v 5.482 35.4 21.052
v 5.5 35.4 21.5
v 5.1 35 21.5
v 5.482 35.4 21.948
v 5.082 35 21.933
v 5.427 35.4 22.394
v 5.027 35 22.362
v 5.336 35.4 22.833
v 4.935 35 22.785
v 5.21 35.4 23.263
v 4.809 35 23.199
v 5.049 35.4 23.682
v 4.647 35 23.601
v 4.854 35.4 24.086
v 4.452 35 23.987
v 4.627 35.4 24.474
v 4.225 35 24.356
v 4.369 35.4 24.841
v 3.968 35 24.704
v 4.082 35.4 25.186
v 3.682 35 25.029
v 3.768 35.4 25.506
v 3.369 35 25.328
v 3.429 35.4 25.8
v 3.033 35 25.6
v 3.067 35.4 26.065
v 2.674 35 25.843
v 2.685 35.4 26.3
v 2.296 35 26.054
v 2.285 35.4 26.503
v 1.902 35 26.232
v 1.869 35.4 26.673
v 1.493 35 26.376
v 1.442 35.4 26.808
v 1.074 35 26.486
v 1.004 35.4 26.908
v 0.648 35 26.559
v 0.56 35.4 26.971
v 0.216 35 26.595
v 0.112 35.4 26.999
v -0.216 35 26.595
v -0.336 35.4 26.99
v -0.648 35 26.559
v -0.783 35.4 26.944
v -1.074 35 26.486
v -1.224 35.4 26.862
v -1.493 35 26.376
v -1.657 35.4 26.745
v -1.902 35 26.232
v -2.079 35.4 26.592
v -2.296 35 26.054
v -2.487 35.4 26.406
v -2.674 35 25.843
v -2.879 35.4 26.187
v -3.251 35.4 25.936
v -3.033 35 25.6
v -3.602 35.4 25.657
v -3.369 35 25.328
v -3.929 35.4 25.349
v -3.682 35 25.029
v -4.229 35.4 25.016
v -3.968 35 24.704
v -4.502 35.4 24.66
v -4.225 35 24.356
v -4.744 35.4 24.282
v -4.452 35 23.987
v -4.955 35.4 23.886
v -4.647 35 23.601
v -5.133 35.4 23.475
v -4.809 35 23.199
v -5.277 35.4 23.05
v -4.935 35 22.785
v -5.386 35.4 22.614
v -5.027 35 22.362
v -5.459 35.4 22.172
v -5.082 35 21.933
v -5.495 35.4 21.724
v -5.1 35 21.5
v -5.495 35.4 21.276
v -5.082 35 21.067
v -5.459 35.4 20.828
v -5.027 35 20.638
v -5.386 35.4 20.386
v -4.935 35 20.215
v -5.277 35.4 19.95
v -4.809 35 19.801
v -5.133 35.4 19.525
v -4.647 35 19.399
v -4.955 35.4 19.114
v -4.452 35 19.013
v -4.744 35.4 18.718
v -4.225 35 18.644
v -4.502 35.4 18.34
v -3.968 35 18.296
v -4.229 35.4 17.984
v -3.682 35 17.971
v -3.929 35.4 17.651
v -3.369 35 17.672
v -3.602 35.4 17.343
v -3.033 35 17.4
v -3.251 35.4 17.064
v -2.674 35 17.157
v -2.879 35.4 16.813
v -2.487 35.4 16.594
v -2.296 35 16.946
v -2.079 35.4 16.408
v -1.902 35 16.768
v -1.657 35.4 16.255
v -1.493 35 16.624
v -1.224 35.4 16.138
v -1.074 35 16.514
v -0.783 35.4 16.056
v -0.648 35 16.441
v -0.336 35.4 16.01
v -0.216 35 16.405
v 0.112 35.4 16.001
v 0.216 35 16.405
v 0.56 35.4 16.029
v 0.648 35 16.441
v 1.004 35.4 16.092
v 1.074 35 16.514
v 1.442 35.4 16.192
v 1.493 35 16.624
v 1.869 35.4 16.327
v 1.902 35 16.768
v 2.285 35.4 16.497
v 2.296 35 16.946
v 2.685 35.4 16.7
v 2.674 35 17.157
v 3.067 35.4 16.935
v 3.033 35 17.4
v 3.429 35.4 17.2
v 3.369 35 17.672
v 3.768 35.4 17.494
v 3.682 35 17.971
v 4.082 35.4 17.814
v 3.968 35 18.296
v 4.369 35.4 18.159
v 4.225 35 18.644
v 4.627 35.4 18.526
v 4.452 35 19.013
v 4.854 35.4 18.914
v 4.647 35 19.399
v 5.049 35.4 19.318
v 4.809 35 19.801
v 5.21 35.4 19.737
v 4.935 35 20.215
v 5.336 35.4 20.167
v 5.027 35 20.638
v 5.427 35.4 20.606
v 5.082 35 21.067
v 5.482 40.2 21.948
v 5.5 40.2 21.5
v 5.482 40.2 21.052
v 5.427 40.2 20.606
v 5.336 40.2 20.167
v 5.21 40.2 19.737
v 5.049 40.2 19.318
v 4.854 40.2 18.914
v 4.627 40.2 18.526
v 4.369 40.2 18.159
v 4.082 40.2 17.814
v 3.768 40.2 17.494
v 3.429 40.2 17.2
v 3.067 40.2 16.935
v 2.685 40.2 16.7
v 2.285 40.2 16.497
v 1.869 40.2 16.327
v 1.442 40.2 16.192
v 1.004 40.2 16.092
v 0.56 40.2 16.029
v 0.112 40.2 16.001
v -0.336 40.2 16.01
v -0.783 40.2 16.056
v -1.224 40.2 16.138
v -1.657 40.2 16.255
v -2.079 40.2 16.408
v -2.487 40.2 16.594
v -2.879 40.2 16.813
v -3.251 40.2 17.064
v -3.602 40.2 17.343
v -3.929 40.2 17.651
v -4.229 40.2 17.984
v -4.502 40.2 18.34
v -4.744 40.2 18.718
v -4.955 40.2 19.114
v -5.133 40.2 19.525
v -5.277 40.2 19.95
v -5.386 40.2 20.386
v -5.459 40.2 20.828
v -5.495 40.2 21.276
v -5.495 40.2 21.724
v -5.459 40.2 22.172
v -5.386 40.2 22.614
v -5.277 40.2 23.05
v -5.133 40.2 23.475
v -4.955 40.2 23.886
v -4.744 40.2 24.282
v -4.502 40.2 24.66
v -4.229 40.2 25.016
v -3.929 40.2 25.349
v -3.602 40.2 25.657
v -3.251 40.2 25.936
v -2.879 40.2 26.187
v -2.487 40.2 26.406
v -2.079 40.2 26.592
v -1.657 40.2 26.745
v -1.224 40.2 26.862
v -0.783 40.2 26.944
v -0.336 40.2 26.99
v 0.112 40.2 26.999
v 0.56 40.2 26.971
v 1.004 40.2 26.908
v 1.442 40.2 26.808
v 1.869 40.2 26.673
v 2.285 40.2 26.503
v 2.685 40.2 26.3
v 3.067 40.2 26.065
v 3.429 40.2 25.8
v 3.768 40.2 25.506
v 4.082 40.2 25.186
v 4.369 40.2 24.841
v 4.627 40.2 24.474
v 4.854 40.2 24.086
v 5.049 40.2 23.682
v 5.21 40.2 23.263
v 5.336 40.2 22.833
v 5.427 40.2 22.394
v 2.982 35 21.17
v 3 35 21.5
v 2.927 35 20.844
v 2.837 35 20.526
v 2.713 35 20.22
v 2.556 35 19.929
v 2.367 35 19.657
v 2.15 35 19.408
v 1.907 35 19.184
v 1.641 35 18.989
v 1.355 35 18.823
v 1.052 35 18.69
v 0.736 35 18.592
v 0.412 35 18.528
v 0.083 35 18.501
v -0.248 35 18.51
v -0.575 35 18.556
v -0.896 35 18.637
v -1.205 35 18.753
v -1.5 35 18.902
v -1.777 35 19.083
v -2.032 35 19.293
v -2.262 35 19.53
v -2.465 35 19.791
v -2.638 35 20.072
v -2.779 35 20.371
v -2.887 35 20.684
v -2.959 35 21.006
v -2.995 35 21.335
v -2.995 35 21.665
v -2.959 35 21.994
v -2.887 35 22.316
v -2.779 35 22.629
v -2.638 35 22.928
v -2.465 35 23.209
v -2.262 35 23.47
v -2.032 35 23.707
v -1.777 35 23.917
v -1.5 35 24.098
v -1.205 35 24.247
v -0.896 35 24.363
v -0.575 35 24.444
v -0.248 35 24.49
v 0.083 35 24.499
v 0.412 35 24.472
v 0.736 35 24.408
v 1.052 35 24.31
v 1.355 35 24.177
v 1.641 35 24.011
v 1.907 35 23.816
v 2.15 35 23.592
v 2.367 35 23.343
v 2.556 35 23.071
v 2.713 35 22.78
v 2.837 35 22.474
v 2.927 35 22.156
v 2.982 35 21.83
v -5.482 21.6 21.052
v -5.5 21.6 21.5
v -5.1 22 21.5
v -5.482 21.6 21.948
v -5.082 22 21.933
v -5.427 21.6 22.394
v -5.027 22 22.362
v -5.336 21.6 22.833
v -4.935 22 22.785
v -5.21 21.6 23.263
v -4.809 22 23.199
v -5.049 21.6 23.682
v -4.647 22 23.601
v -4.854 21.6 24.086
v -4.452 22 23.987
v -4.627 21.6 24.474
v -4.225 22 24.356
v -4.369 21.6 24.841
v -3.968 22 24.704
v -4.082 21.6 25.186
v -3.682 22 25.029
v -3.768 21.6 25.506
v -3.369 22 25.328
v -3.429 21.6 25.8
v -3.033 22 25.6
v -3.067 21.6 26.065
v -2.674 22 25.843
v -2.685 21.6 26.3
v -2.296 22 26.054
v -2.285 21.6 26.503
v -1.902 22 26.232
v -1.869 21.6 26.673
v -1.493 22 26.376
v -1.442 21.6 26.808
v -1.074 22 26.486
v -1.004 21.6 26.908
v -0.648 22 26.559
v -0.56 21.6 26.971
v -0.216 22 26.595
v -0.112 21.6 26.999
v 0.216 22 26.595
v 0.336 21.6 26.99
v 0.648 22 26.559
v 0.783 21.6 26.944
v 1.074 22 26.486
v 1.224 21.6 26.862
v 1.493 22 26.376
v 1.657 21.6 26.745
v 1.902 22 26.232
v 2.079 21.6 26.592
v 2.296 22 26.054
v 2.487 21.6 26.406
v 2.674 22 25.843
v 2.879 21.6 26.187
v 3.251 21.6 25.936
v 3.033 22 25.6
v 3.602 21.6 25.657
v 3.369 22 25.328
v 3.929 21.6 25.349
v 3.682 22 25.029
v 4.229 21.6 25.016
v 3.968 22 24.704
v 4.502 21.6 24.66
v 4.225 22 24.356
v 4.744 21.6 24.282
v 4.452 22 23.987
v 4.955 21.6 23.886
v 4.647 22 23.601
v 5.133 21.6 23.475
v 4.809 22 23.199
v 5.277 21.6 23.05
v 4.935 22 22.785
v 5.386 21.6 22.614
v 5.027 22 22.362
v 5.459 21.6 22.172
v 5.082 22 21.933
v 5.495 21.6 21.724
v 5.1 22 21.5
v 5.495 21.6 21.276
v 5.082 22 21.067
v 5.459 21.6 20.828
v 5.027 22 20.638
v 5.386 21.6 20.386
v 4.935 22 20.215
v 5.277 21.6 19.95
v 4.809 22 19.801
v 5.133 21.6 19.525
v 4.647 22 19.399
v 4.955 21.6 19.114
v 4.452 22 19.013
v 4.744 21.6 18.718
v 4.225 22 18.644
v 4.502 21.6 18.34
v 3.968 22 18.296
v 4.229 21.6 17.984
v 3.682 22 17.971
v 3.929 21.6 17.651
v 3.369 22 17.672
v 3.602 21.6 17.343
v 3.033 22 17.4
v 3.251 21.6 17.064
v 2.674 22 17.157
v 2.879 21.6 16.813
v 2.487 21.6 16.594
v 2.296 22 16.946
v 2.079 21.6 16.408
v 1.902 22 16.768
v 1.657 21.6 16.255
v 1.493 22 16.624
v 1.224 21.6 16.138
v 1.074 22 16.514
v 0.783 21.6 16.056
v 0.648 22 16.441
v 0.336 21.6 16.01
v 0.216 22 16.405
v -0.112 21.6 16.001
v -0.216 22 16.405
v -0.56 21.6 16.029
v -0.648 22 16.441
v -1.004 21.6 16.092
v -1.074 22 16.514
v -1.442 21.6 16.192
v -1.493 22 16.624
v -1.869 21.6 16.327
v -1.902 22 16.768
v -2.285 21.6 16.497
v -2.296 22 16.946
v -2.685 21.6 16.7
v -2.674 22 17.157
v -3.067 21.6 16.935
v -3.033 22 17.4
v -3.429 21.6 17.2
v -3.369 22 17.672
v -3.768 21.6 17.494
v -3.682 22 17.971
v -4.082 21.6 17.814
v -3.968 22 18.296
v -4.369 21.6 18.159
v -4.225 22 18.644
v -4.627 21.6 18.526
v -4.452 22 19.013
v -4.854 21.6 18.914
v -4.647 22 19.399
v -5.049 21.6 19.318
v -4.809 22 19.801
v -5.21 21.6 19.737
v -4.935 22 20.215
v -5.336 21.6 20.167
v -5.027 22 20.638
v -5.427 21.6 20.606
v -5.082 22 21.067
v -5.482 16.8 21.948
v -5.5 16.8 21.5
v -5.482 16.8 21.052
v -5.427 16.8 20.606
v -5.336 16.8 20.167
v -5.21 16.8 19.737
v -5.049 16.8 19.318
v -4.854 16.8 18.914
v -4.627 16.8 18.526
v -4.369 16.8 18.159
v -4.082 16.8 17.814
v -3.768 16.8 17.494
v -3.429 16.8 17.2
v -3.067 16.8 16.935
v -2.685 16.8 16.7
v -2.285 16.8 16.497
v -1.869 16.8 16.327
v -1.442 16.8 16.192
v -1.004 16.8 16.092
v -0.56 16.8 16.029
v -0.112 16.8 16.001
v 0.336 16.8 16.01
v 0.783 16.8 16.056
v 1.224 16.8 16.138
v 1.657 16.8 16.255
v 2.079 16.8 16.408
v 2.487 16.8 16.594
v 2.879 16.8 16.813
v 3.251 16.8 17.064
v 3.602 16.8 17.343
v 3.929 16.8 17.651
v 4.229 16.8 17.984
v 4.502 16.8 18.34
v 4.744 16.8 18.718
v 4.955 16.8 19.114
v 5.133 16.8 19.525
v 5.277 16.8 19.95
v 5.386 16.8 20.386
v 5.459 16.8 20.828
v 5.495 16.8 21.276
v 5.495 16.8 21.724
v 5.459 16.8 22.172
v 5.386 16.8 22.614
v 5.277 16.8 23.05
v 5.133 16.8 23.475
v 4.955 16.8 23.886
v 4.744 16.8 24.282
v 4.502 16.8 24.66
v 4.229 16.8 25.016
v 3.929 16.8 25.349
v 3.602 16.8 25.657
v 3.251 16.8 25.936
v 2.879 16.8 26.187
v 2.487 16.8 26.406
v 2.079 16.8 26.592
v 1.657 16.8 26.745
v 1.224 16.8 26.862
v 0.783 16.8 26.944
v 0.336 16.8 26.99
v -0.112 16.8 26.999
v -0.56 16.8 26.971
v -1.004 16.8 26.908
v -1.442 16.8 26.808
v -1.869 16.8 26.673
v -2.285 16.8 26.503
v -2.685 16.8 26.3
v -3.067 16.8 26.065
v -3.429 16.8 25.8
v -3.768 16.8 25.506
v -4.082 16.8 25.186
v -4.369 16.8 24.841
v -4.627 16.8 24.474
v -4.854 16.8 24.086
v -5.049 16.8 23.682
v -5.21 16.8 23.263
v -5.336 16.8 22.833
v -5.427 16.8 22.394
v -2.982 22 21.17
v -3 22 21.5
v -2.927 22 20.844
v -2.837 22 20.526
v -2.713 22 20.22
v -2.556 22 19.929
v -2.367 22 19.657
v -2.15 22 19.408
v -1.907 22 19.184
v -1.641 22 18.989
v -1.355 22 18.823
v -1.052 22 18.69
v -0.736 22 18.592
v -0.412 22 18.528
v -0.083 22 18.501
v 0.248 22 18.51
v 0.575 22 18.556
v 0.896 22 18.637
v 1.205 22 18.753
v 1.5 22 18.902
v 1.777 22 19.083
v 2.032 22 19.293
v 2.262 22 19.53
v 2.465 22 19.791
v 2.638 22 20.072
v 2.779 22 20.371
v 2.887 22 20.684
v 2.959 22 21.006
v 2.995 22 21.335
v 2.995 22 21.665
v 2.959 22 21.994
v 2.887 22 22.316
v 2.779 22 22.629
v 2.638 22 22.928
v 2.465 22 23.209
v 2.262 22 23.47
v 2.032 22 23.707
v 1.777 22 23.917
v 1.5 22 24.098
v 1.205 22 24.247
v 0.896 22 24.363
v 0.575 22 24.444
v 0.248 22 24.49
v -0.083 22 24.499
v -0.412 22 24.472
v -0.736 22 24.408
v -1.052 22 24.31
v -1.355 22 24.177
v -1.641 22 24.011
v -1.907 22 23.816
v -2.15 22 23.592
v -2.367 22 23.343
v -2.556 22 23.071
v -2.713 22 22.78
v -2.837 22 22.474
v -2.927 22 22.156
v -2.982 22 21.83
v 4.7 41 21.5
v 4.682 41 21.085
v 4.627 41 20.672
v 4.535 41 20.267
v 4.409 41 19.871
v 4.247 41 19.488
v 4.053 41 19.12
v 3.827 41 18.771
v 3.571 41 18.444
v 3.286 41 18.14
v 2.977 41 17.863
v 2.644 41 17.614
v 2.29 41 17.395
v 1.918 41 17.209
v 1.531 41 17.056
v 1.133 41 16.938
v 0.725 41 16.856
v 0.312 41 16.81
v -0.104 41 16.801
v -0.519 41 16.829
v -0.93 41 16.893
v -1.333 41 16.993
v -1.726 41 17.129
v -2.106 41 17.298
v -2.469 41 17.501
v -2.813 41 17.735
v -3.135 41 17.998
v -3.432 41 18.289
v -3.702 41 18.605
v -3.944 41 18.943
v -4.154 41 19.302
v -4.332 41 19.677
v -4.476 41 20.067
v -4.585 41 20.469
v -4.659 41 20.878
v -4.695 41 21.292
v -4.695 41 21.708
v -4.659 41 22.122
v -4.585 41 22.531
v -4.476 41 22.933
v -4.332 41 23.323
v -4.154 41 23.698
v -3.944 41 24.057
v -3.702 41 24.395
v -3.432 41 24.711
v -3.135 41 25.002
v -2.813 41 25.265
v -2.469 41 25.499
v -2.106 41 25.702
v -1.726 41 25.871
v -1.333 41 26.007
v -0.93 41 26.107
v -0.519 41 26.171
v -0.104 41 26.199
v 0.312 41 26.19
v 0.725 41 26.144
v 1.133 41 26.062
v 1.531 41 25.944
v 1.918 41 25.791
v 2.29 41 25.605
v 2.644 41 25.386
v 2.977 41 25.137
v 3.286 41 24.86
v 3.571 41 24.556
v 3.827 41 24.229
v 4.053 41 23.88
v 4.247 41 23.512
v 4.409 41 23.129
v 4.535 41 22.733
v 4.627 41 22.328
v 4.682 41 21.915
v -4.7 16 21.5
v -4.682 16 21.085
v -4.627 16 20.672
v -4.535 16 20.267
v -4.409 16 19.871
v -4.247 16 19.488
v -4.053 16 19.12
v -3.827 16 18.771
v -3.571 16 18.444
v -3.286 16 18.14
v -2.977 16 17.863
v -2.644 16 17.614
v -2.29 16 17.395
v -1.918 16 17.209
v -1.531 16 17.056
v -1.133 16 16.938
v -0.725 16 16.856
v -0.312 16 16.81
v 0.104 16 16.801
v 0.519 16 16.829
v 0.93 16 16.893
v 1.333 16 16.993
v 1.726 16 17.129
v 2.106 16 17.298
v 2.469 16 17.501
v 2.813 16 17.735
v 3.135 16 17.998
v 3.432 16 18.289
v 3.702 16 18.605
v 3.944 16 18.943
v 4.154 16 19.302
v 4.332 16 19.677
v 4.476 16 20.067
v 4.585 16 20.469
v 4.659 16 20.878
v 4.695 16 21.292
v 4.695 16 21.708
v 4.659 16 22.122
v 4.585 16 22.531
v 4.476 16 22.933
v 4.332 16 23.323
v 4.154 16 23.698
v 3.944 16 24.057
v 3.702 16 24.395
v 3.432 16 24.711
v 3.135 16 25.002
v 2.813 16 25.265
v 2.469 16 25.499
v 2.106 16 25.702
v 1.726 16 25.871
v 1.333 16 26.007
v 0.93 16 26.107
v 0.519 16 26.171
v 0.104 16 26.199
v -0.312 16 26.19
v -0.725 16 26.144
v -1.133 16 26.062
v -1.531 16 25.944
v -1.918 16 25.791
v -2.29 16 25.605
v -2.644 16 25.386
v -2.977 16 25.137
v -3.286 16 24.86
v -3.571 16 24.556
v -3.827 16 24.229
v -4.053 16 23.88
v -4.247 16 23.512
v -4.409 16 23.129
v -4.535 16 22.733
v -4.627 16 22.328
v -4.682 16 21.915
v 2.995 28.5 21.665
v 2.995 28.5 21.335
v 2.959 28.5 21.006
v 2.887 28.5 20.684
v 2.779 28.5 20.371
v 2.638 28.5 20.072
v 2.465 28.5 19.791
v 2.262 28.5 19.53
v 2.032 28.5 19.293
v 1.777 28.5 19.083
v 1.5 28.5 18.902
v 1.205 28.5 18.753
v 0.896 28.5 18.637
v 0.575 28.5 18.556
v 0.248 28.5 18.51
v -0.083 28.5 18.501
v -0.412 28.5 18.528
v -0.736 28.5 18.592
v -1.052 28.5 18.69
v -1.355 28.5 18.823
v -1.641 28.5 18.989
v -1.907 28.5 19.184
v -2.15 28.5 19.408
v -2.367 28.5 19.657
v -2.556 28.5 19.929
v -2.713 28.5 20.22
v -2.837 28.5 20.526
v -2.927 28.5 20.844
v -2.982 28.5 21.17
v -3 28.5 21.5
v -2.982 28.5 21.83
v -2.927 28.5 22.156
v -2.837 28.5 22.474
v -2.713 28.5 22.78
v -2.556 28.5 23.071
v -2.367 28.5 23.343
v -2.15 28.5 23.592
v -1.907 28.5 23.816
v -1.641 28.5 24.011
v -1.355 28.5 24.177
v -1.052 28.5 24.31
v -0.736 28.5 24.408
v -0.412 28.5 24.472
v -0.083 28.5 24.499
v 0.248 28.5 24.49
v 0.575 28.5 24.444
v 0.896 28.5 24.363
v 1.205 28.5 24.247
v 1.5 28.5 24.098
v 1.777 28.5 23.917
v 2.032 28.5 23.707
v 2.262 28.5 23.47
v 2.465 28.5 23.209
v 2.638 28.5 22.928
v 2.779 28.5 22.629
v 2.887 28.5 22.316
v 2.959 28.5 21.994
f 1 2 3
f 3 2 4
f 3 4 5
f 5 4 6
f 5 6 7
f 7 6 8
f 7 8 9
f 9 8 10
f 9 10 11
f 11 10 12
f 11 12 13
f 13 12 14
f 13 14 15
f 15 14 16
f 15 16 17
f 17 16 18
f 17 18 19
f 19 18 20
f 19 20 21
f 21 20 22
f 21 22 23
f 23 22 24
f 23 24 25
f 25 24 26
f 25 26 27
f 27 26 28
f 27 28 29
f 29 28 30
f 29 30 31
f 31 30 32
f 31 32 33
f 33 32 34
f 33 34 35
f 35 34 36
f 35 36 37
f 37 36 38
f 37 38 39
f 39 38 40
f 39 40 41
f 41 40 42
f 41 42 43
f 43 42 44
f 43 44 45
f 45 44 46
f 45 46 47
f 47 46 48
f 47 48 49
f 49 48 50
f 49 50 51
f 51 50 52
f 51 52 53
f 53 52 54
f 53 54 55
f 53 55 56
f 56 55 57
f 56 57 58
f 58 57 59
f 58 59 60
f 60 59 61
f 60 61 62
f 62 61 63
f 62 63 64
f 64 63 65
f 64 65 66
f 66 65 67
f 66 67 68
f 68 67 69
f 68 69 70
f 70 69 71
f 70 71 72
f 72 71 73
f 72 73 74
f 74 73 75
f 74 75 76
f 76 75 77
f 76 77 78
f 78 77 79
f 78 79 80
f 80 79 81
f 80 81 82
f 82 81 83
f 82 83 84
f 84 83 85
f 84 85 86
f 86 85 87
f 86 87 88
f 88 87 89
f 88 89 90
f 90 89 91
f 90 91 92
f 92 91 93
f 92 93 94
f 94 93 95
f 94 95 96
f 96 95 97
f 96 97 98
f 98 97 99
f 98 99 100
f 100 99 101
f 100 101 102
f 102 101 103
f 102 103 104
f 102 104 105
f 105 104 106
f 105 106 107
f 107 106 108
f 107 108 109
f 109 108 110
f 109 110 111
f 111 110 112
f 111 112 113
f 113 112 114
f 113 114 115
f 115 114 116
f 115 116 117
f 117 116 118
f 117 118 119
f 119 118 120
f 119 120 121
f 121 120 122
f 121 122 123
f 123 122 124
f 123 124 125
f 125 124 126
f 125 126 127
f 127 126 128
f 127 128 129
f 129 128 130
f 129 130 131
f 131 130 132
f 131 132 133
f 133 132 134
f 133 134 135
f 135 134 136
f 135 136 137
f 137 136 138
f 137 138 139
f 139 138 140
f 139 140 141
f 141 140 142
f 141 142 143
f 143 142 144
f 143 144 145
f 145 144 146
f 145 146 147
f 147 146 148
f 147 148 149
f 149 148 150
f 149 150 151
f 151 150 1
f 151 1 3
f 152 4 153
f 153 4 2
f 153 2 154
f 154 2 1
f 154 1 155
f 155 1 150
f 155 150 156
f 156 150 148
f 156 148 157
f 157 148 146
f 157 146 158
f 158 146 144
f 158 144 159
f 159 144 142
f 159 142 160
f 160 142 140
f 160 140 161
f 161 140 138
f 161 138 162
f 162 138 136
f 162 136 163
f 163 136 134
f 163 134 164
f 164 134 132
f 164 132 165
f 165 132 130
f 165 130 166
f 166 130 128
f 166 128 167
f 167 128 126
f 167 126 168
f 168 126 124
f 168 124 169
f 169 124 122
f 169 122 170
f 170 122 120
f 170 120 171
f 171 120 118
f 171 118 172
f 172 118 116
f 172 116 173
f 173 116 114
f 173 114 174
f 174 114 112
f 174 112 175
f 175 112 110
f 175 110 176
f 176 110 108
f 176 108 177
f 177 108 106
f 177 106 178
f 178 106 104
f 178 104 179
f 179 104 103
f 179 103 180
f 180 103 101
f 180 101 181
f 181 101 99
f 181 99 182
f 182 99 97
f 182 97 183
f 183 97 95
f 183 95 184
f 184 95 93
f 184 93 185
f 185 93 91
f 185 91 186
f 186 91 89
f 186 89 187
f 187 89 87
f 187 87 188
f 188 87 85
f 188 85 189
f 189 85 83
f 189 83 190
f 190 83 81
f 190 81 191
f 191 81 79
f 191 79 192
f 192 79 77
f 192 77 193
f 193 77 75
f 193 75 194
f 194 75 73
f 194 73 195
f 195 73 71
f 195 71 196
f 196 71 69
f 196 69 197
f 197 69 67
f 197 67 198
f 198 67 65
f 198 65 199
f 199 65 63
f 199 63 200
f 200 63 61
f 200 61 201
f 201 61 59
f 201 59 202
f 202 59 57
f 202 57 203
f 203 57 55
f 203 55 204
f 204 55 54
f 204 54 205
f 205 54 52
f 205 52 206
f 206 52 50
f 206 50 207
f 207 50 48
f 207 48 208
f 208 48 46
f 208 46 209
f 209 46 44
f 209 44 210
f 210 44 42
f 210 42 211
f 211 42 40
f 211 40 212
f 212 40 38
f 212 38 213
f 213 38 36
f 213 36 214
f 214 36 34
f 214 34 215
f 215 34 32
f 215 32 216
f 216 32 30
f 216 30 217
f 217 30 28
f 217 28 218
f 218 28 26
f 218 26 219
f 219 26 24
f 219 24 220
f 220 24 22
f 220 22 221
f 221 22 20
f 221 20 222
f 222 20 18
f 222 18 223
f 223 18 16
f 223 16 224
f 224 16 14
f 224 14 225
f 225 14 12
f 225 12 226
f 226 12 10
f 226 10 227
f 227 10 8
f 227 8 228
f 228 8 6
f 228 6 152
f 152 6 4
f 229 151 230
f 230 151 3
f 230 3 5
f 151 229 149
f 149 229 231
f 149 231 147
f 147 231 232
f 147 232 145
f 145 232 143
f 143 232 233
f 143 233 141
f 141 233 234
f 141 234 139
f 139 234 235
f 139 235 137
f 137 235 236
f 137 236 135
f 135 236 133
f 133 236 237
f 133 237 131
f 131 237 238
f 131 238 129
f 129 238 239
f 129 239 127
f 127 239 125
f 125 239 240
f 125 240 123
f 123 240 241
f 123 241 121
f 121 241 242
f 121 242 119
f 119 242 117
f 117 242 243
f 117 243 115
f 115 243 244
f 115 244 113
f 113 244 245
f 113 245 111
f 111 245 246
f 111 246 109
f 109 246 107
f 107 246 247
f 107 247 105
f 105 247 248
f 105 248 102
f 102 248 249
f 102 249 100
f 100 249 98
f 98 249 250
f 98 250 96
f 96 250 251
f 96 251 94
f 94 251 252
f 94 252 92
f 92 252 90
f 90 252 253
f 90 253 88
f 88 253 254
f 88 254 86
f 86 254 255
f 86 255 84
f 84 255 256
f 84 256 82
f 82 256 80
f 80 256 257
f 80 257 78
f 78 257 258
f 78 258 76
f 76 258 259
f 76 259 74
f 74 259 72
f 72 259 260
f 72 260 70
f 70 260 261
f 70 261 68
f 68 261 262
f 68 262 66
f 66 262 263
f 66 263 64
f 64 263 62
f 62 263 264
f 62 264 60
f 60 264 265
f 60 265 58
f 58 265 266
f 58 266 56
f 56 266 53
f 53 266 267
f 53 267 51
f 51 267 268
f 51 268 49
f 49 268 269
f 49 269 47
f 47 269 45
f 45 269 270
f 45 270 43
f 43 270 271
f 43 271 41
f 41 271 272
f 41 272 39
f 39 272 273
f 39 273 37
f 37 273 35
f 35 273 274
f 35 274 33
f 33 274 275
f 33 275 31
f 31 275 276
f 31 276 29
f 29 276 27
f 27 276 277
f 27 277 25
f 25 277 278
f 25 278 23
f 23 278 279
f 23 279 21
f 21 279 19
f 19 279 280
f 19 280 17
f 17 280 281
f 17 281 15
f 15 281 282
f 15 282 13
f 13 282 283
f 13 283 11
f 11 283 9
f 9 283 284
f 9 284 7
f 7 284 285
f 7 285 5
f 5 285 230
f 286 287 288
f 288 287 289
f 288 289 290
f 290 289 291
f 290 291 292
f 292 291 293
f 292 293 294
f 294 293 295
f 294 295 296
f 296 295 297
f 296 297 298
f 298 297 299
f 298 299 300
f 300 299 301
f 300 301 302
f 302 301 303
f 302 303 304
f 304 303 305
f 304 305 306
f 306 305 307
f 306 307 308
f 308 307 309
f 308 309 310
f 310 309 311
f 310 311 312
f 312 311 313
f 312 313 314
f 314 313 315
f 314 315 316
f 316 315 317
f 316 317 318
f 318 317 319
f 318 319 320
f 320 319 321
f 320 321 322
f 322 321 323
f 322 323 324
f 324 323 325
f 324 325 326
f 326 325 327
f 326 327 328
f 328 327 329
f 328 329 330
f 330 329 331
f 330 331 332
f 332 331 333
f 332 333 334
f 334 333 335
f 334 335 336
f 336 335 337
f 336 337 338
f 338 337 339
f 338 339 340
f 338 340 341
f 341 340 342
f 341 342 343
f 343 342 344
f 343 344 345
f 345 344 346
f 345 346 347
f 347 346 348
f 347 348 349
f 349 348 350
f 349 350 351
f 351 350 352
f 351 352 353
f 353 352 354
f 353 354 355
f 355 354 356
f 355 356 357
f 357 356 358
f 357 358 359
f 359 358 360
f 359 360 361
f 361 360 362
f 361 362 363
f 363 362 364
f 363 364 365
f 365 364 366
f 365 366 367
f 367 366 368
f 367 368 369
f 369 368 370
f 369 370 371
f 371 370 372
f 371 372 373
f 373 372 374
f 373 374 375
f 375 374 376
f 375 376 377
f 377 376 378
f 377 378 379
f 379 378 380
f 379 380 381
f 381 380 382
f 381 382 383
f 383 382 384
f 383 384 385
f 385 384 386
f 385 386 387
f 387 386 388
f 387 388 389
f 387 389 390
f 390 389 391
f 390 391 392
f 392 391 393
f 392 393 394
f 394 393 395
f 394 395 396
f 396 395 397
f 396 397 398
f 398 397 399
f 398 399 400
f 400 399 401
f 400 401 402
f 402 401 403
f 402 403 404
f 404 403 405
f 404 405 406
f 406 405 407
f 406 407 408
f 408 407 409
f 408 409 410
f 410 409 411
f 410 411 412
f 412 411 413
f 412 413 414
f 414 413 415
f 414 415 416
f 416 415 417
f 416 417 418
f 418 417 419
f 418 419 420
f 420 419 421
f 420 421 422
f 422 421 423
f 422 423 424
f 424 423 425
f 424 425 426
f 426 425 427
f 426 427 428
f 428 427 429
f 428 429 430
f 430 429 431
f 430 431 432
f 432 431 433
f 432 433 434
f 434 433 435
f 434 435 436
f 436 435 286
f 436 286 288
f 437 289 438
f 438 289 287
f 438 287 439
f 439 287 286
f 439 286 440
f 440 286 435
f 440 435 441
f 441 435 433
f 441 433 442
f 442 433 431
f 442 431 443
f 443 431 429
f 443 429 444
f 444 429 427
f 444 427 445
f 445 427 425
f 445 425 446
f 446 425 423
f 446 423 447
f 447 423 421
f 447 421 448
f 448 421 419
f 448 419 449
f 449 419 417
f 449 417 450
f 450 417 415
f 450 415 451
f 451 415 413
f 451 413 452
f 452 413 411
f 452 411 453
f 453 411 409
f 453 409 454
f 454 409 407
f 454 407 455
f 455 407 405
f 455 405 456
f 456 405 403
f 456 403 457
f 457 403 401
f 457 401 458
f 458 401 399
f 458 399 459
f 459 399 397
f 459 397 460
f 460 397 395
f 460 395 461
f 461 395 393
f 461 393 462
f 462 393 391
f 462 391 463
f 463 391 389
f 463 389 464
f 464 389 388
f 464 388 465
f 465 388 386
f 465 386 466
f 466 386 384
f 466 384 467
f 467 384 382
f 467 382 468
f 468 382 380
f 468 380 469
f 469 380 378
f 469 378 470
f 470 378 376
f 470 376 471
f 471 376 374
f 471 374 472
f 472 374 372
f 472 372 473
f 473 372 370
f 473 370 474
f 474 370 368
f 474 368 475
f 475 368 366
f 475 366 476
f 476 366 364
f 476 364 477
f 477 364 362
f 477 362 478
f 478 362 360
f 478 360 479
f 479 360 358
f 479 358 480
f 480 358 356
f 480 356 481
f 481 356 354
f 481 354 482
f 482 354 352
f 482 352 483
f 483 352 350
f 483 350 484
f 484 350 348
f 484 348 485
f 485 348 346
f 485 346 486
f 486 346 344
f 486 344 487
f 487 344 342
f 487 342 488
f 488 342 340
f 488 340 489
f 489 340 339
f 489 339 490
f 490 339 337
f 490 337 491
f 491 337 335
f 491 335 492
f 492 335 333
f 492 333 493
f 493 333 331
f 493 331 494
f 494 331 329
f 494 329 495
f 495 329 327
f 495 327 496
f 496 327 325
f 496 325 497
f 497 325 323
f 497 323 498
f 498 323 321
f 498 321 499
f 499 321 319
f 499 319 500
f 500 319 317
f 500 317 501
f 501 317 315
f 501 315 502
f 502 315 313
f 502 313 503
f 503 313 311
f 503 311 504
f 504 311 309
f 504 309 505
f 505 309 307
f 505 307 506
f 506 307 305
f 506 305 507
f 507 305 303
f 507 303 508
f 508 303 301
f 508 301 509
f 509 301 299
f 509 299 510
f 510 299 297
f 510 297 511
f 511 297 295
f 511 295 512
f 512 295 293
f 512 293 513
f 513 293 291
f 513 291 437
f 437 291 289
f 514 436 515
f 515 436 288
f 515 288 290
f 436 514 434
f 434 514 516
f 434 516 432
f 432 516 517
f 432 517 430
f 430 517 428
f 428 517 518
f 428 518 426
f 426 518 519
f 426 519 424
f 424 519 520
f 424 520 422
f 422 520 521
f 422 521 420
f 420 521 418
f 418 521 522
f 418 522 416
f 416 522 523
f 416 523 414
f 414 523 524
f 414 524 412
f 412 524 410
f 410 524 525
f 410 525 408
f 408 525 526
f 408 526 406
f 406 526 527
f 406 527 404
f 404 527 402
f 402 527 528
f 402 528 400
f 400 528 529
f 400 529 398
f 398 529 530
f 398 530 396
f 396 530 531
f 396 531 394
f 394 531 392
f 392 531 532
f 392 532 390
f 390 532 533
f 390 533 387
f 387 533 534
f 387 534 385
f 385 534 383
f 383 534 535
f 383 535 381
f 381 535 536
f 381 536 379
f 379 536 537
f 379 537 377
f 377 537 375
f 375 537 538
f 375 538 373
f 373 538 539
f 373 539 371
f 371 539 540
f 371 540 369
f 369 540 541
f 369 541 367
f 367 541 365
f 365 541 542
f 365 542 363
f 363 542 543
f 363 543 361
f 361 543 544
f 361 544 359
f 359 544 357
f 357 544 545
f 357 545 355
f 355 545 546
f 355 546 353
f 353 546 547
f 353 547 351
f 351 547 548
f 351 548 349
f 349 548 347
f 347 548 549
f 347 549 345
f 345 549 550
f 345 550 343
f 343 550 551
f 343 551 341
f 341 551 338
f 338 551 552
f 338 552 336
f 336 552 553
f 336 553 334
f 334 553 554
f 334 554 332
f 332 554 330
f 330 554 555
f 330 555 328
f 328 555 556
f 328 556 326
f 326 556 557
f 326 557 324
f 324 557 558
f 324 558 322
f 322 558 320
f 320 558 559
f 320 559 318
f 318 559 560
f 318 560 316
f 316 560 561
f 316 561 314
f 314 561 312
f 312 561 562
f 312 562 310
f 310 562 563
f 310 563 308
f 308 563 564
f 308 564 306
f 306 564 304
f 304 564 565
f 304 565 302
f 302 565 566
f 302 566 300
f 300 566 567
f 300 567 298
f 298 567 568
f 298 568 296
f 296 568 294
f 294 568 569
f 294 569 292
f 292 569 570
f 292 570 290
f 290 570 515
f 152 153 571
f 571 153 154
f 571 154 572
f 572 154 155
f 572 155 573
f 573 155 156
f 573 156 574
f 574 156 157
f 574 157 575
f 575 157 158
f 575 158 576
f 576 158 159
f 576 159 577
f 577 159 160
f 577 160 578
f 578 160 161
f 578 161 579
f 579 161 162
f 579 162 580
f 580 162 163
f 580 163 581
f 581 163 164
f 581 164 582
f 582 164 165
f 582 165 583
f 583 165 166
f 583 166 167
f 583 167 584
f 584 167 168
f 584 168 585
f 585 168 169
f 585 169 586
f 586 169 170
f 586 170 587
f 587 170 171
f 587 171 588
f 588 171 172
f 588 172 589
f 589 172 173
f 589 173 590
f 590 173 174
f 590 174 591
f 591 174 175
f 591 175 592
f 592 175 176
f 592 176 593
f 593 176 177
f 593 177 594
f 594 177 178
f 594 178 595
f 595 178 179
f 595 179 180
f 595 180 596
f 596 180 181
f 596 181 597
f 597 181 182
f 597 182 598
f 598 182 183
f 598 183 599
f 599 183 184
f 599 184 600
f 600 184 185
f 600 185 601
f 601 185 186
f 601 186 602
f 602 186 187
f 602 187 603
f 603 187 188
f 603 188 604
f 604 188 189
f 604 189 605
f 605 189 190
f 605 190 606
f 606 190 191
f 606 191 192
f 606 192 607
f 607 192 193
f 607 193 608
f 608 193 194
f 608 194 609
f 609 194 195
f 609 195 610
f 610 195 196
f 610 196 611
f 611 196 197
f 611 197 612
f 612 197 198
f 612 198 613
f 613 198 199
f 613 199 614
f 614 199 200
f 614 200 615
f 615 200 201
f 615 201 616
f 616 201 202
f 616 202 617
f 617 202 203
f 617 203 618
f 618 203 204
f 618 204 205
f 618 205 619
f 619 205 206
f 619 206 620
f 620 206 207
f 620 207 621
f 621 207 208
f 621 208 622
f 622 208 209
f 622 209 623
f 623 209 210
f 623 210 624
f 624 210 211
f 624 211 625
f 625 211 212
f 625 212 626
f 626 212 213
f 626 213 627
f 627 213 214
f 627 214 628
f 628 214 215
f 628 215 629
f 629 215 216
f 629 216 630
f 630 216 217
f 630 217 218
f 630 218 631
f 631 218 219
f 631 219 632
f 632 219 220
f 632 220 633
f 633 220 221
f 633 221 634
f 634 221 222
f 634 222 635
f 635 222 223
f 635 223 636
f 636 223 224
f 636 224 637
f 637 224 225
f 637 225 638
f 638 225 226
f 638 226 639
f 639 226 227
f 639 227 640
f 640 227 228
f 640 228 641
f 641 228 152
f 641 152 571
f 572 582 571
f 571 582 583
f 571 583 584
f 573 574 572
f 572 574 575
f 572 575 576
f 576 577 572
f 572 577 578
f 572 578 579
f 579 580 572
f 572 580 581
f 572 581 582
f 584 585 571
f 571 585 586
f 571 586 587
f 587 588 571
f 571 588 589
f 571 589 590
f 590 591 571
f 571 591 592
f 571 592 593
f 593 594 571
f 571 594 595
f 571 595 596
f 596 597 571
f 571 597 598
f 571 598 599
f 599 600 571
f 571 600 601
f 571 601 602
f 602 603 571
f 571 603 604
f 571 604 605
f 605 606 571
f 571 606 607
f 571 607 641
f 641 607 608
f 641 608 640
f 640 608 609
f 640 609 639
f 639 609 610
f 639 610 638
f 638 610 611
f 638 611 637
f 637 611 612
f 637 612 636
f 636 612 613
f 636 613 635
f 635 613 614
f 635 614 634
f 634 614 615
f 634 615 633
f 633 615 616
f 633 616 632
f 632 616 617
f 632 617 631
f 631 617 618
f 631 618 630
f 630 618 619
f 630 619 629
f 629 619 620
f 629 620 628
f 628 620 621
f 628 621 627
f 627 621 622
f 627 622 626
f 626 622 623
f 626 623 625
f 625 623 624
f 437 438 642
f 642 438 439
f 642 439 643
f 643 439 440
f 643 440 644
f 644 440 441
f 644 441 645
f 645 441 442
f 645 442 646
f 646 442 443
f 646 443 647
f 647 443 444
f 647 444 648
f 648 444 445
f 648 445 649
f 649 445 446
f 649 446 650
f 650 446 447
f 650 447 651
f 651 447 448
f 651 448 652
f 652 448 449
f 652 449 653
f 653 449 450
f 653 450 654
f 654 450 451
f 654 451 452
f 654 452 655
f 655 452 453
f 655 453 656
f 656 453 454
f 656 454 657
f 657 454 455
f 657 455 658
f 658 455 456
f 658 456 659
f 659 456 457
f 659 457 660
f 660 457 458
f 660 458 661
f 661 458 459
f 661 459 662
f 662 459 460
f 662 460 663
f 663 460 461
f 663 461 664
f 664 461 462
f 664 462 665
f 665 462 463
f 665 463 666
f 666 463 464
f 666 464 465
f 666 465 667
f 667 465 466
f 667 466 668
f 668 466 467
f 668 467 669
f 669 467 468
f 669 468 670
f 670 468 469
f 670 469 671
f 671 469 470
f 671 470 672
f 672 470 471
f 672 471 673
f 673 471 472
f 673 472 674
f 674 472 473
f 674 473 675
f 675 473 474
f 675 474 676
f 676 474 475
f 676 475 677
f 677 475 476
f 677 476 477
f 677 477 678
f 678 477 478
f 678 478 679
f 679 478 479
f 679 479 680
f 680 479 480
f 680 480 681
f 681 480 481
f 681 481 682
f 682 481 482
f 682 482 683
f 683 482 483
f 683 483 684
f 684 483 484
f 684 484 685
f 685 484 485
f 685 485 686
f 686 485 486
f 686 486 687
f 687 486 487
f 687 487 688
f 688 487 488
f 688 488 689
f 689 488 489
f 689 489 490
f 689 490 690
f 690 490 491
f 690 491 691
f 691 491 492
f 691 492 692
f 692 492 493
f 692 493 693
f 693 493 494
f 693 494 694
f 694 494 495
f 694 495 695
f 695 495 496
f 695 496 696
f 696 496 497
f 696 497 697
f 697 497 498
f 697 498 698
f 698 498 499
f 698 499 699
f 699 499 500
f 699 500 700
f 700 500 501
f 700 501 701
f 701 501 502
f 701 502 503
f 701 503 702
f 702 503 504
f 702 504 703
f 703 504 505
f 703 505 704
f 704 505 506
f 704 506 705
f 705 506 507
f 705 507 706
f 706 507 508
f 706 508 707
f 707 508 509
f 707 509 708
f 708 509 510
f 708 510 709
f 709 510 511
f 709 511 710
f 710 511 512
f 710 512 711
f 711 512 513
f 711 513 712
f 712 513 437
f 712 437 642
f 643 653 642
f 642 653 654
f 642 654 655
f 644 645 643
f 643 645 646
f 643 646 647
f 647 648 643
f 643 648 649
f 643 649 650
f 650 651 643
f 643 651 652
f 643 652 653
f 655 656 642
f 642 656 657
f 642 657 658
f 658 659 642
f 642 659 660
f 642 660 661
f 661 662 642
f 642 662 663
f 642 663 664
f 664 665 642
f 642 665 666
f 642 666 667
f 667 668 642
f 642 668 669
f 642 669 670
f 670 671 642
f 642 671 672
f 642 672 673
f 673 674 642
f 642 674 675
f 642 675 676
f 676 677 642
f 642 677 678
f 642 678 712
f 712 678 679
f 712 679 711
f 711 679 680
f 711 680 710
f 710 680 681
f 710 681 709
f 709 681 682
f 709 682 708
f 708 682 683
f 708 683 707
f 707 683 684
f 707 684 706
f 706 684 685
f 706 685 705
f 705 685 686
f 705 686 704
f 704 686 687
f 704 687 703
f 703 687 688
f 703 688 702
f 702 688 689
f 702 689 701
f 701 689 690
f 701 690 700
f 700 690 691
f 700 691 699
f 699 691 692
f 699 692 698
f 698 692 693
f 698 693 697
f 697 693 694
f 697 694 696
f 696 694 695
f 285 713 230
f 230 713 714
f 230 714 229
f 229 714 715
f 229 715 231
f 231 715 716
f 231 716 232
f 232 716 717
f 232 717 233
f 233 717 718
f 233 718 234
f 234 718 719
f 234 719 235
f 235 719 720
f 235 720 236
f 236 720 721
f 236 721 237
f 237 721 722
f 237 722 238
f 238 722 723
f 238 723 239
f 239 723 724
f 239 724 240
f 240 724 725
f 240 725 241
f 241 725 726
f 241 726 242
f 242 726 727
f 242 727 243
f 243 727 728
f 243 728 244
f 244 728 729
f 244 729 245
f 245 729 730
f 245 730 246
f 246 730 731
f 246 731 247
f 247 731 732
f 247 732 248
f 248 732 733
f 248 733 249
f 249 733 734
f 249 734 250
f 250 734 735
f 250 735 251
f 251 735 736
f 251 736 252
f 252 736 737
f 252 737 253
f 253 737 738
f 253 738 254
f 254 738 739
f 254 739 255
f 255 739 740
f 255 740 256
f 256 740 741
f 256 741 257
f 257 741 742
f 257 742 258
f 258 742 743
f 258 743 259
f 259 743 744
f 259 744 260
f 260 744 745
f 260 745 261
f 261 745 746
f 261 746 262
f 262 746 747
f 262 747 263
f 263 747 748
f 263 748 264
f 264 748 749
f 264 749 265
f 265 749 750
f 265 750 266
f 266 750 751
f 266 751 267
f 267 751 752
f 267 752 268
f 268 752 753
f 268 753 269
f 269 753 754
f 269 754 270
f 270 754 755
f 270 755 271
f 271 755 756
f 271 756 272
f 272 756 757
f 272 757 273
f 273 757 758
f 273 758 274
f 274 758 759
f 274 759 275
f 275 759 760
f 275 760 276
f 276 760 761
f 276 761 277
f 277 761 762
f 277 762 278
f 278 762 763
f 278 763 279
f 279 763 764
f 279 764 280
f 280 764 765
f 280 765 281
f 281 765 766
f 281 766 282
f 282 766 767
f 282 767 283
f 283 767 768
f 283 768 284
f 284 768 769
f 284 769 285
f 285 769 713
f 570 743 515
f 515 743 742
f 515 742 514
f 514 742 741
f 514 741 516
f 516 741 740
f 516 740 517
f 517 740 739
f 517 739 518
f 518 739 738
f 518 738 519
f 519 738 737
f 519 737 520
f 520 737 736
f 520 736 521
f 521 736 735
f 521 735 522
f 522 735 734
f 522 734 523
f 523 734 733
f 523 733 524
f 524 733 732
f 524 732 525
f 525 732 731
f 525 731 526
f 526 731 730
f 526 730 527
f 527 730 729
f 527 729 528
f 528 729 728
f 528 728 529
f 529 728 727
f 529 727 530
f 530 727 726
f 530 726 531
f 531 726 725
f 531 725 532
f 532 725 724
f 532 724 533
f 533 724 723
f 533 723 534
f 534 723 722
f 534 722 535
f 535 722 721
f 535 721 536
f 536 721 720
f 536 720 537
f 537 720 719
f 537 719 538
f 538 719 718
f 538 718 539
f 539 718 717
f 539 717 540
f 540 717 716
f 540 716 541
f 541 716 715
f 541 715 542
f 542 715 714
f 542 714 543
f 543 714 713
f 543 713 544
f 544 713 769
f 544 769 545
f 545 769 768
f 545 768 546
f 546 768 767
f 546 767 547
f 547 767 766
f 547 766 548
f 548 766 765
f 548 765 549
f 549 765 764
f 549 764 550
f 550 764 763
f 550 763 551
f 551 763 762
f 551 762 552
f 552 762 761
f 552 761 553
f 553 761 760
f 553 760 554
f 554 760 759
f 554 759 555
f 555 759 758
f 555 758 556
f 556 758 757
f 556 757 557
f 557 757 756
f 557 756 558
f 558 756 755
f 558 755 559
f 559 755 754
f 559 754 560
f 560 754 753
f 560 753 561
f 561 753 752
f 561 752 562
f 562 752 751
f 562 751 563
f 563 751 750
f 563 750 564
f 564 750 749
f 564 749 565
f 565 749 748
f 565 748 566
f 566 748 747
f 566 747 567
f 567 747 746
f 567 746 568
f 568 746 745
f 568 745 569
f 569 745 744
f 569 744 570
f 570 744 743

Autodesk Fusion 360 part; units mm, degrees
sketch "PinWay" plane through (0, 65, 0) normal (0, 1, 0) x (1, 0, 0)
  line L0 (0, 0) -> (0, -30) construction
  line L1 (0, -30) -> (4.125, -30)
  line L2 (4.125, -30) -> (4.125, -25.8571)
  line L3 (-4.125, -30) -> (-4.125, -25.8571)
  line L4 (0, -30) -> (-4.125, -30)
  arc A0 (4.125, -25.8571) -> (-4.125, -25.8571) centre (0, -21.5) ccw
  circle A1 centre (0, -21.5) radius 5.5
  circle A2 centre (0, -21.5) radius 3
  dimension "d1" = 0
  dimension "d2" = 0
  dimension "d3" = 0
  dimension "d4" = 0
  dimension "d5" = 11
  dimension "d6" = 0
extrude "Extrude1" add sketch "PinWay" against normal blind 49 contours A2
extrude "Extrude2" cut sketch "PinWay" against normal blind 24 contours A2
sketch "Sketch6" plane through (0, 16, 0) normal (0, -1, 0) x (1, 0, 0)
  circle A0 centre (0, 21.5) radius 3
  circle A1 centre (0, 21.5) radius 5.5
  dimension "d171" = 11
sketch "Sketch7" plane through (0, 41, 0) normal (0, 1, 0) x (-1, 0, 0)
  circle A0 centre (0, 21.5) radius 3
  circle A1 centre (0, 21.5) radius 5.5
extrude "Extrude3" add sketch "Sketch6" against normal blind 6
extrude "Extrude4" add sketch "Sketch7" against normal blind 6
chamfer "Chamfer3" distance 0.8 angle 45 2 edges at (-5.1278, 16, 19.5111) (5.1278, 41, 19.5111)
chamfer "Chamfer4" distance 0.4 angle 45 2 edges at (-5.1278, 22, 23.4889) (5.1278, 35, 23.4889)
chamfer "Chamfer1" [suppressed]
chamfer "Chamfer2" [suppressed]
equation "d167 = TopPinBlank"
equation "d169 = TopPinBlank + TopPinLength"
equation "d171 = Pin"
equation "d173 = -1 * SpoolPinEnds"
equation "d175 = -1 * SpoolPinEnds"
equation "Pin = 11 mm"
equation "TopPinLength = 25 mm"
equation "TopPinBlank = -49 mm"
equation "SpoolPinEnds = 6 mm"
equation "d1 = PinWayDiameter"
equation "d2 = PinWayDepth"
equation "d3 = BodyThickness"
equation "d4 = PinWayOpening / 2"
equation "d5 = Pin"
equation "d6 = SpoolPinCenter"
